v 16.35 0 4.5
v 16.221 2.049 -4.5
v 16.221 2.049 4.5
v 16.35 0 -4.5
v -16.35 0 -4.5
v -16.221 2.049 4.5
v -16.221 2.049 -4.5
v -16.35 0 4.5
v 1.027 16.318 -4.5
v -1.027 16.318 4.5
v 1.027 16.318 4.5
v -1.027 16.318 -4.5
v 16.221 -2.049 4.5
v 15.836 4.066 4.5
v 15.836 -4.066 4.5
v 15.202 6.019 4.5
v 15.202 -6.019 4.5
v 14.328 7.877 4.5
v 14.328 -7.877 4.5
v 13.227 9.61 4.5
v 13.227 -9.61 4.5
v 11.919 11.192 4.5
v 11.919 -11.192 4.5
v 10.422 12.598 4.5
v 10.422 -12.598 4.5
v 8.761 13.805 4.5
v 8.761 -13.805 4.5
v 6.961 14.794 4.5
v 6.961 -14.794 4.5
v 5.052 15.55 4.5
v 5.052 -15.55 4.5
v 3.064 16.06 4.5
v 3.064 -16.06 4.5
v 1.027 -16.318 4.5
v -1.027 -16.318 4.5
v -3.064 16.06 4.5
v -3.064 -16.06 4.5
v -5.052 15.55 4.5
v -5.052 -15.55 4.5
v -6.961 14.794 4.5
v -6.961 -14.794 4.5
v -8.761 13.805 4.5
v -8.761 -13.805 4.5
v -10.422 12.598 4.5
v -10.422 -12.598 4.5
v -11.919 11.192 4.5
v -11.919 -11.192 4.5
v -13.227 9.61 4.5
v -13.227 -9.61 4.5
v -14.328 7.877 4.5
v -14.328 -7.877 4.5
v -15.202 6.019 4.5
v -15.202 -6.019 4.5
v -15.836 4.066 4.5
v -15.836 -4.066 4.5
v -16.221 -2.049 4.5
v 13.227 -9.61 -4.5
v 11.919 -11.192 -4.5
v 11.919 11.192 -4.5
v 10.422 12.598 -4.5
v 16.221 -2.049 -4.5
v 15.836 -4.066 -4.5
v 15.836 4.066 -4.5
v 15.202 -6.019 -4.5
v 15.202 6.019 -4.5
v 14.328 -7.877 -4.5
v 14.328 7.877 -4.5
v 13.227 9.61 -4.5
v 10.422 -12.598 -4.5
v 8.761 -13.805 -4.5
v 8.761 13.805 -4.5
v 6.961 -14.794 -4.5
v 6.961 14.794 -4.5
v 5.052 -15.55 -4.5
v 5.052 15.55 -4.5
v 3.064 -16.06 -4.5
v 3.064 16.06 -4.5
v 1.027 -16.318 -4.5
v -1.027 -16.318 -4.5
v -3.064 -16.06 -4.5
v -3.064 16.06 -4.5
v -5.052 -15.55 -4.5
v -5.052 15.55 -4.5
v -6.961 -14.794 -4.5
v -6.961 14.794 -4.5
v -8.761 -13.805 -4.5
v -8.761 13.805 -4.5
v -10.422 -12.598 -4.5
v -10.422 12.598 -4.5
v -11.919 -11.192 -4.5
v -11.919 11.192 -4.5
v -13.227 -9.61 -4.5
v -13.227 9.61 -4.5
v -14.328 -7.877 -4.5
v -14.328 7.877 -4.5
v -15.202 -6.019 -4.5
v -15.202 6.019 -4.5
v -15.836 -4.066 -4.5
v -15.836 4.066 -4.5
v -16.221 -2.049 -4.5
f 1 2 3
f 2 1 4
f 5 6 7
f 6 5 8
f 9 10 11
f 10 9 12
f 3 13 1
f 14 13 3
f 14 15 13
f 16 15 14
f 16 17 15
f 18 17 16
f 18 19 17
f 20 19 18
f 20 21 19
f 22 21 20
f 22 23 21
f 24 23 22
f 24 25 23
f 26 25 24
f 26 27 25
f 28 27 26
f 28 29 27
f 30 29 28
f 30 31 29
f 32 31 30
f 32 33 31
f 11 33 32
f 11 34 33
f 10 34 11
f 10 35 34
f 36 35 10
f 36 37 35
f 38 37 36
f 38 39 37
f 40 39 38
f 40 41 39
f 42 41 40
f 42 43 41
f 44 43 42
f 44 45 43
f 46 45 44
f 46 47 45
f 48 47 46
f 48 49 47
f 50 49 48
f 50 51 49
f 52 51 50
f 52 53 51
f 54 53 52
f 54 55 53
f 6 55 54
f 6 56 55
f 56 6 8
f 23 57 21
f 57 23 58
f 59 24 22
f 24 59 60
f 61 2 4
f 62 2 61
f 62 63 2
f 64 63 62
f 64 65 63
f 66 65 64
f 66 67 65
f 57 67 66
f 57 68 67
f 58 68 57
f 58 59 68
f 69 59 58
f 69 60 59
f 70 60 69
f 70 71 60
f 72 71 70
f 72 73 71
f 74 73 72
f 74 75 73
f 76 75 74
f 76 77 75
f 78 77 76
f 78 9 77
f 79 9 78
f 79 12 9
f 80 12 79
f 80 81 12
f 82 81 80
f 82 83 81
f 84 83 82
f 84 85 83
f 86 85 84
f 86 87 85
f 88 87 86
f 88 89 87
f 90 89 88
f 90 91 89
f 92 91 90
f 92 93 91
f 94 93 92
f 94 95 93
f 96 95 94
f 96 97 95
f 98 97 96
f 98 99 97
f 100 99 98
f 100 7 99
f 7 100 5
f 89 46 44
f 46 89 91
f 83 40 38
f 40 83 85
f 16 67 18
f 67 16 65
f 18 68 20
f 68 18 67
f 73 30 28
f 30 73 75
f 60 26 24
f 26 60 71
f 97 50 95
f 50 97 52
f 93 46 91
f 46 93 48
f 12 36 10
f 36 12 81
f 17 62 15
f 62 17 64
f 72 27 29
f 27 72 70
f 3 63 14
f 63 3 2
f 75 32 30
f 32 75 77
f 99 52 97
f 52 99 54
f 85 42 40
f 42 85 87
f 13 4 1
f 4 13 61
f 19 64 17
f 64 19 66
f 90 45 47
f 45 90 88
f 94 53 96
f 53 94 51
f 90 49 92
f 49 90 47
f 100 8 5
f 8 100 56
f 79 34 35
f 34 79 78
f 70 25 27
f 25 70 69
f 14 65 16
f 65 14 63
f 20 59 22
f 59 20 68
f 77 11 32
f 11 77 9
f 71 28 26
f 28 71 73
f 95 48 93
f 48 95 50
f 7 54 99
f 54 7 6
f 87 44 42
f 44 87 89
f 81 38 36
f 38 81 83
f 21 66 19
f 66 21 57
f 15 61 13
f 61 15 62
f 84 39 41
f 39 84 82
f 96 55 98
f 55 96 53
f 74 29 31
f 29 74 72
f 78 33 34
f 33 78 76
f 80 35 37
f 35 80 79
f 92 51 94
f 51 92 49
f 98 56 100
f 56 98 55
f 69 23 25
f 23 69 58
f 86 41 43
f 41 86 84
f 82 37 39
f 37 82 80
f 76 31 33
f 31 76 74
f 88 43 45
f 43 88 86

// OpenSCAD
$fn = 50;


difference() {
	union() {
		translate(v = [0, 0, -4.5000000000]) {
			cylinder(h = 9, r = 16.3500000000);
		}
	}
	union() {
		translate(v = [0, 0, -100.0000000000]) {
			cylinder(h = 200, r = 0);
		}
	}
}
